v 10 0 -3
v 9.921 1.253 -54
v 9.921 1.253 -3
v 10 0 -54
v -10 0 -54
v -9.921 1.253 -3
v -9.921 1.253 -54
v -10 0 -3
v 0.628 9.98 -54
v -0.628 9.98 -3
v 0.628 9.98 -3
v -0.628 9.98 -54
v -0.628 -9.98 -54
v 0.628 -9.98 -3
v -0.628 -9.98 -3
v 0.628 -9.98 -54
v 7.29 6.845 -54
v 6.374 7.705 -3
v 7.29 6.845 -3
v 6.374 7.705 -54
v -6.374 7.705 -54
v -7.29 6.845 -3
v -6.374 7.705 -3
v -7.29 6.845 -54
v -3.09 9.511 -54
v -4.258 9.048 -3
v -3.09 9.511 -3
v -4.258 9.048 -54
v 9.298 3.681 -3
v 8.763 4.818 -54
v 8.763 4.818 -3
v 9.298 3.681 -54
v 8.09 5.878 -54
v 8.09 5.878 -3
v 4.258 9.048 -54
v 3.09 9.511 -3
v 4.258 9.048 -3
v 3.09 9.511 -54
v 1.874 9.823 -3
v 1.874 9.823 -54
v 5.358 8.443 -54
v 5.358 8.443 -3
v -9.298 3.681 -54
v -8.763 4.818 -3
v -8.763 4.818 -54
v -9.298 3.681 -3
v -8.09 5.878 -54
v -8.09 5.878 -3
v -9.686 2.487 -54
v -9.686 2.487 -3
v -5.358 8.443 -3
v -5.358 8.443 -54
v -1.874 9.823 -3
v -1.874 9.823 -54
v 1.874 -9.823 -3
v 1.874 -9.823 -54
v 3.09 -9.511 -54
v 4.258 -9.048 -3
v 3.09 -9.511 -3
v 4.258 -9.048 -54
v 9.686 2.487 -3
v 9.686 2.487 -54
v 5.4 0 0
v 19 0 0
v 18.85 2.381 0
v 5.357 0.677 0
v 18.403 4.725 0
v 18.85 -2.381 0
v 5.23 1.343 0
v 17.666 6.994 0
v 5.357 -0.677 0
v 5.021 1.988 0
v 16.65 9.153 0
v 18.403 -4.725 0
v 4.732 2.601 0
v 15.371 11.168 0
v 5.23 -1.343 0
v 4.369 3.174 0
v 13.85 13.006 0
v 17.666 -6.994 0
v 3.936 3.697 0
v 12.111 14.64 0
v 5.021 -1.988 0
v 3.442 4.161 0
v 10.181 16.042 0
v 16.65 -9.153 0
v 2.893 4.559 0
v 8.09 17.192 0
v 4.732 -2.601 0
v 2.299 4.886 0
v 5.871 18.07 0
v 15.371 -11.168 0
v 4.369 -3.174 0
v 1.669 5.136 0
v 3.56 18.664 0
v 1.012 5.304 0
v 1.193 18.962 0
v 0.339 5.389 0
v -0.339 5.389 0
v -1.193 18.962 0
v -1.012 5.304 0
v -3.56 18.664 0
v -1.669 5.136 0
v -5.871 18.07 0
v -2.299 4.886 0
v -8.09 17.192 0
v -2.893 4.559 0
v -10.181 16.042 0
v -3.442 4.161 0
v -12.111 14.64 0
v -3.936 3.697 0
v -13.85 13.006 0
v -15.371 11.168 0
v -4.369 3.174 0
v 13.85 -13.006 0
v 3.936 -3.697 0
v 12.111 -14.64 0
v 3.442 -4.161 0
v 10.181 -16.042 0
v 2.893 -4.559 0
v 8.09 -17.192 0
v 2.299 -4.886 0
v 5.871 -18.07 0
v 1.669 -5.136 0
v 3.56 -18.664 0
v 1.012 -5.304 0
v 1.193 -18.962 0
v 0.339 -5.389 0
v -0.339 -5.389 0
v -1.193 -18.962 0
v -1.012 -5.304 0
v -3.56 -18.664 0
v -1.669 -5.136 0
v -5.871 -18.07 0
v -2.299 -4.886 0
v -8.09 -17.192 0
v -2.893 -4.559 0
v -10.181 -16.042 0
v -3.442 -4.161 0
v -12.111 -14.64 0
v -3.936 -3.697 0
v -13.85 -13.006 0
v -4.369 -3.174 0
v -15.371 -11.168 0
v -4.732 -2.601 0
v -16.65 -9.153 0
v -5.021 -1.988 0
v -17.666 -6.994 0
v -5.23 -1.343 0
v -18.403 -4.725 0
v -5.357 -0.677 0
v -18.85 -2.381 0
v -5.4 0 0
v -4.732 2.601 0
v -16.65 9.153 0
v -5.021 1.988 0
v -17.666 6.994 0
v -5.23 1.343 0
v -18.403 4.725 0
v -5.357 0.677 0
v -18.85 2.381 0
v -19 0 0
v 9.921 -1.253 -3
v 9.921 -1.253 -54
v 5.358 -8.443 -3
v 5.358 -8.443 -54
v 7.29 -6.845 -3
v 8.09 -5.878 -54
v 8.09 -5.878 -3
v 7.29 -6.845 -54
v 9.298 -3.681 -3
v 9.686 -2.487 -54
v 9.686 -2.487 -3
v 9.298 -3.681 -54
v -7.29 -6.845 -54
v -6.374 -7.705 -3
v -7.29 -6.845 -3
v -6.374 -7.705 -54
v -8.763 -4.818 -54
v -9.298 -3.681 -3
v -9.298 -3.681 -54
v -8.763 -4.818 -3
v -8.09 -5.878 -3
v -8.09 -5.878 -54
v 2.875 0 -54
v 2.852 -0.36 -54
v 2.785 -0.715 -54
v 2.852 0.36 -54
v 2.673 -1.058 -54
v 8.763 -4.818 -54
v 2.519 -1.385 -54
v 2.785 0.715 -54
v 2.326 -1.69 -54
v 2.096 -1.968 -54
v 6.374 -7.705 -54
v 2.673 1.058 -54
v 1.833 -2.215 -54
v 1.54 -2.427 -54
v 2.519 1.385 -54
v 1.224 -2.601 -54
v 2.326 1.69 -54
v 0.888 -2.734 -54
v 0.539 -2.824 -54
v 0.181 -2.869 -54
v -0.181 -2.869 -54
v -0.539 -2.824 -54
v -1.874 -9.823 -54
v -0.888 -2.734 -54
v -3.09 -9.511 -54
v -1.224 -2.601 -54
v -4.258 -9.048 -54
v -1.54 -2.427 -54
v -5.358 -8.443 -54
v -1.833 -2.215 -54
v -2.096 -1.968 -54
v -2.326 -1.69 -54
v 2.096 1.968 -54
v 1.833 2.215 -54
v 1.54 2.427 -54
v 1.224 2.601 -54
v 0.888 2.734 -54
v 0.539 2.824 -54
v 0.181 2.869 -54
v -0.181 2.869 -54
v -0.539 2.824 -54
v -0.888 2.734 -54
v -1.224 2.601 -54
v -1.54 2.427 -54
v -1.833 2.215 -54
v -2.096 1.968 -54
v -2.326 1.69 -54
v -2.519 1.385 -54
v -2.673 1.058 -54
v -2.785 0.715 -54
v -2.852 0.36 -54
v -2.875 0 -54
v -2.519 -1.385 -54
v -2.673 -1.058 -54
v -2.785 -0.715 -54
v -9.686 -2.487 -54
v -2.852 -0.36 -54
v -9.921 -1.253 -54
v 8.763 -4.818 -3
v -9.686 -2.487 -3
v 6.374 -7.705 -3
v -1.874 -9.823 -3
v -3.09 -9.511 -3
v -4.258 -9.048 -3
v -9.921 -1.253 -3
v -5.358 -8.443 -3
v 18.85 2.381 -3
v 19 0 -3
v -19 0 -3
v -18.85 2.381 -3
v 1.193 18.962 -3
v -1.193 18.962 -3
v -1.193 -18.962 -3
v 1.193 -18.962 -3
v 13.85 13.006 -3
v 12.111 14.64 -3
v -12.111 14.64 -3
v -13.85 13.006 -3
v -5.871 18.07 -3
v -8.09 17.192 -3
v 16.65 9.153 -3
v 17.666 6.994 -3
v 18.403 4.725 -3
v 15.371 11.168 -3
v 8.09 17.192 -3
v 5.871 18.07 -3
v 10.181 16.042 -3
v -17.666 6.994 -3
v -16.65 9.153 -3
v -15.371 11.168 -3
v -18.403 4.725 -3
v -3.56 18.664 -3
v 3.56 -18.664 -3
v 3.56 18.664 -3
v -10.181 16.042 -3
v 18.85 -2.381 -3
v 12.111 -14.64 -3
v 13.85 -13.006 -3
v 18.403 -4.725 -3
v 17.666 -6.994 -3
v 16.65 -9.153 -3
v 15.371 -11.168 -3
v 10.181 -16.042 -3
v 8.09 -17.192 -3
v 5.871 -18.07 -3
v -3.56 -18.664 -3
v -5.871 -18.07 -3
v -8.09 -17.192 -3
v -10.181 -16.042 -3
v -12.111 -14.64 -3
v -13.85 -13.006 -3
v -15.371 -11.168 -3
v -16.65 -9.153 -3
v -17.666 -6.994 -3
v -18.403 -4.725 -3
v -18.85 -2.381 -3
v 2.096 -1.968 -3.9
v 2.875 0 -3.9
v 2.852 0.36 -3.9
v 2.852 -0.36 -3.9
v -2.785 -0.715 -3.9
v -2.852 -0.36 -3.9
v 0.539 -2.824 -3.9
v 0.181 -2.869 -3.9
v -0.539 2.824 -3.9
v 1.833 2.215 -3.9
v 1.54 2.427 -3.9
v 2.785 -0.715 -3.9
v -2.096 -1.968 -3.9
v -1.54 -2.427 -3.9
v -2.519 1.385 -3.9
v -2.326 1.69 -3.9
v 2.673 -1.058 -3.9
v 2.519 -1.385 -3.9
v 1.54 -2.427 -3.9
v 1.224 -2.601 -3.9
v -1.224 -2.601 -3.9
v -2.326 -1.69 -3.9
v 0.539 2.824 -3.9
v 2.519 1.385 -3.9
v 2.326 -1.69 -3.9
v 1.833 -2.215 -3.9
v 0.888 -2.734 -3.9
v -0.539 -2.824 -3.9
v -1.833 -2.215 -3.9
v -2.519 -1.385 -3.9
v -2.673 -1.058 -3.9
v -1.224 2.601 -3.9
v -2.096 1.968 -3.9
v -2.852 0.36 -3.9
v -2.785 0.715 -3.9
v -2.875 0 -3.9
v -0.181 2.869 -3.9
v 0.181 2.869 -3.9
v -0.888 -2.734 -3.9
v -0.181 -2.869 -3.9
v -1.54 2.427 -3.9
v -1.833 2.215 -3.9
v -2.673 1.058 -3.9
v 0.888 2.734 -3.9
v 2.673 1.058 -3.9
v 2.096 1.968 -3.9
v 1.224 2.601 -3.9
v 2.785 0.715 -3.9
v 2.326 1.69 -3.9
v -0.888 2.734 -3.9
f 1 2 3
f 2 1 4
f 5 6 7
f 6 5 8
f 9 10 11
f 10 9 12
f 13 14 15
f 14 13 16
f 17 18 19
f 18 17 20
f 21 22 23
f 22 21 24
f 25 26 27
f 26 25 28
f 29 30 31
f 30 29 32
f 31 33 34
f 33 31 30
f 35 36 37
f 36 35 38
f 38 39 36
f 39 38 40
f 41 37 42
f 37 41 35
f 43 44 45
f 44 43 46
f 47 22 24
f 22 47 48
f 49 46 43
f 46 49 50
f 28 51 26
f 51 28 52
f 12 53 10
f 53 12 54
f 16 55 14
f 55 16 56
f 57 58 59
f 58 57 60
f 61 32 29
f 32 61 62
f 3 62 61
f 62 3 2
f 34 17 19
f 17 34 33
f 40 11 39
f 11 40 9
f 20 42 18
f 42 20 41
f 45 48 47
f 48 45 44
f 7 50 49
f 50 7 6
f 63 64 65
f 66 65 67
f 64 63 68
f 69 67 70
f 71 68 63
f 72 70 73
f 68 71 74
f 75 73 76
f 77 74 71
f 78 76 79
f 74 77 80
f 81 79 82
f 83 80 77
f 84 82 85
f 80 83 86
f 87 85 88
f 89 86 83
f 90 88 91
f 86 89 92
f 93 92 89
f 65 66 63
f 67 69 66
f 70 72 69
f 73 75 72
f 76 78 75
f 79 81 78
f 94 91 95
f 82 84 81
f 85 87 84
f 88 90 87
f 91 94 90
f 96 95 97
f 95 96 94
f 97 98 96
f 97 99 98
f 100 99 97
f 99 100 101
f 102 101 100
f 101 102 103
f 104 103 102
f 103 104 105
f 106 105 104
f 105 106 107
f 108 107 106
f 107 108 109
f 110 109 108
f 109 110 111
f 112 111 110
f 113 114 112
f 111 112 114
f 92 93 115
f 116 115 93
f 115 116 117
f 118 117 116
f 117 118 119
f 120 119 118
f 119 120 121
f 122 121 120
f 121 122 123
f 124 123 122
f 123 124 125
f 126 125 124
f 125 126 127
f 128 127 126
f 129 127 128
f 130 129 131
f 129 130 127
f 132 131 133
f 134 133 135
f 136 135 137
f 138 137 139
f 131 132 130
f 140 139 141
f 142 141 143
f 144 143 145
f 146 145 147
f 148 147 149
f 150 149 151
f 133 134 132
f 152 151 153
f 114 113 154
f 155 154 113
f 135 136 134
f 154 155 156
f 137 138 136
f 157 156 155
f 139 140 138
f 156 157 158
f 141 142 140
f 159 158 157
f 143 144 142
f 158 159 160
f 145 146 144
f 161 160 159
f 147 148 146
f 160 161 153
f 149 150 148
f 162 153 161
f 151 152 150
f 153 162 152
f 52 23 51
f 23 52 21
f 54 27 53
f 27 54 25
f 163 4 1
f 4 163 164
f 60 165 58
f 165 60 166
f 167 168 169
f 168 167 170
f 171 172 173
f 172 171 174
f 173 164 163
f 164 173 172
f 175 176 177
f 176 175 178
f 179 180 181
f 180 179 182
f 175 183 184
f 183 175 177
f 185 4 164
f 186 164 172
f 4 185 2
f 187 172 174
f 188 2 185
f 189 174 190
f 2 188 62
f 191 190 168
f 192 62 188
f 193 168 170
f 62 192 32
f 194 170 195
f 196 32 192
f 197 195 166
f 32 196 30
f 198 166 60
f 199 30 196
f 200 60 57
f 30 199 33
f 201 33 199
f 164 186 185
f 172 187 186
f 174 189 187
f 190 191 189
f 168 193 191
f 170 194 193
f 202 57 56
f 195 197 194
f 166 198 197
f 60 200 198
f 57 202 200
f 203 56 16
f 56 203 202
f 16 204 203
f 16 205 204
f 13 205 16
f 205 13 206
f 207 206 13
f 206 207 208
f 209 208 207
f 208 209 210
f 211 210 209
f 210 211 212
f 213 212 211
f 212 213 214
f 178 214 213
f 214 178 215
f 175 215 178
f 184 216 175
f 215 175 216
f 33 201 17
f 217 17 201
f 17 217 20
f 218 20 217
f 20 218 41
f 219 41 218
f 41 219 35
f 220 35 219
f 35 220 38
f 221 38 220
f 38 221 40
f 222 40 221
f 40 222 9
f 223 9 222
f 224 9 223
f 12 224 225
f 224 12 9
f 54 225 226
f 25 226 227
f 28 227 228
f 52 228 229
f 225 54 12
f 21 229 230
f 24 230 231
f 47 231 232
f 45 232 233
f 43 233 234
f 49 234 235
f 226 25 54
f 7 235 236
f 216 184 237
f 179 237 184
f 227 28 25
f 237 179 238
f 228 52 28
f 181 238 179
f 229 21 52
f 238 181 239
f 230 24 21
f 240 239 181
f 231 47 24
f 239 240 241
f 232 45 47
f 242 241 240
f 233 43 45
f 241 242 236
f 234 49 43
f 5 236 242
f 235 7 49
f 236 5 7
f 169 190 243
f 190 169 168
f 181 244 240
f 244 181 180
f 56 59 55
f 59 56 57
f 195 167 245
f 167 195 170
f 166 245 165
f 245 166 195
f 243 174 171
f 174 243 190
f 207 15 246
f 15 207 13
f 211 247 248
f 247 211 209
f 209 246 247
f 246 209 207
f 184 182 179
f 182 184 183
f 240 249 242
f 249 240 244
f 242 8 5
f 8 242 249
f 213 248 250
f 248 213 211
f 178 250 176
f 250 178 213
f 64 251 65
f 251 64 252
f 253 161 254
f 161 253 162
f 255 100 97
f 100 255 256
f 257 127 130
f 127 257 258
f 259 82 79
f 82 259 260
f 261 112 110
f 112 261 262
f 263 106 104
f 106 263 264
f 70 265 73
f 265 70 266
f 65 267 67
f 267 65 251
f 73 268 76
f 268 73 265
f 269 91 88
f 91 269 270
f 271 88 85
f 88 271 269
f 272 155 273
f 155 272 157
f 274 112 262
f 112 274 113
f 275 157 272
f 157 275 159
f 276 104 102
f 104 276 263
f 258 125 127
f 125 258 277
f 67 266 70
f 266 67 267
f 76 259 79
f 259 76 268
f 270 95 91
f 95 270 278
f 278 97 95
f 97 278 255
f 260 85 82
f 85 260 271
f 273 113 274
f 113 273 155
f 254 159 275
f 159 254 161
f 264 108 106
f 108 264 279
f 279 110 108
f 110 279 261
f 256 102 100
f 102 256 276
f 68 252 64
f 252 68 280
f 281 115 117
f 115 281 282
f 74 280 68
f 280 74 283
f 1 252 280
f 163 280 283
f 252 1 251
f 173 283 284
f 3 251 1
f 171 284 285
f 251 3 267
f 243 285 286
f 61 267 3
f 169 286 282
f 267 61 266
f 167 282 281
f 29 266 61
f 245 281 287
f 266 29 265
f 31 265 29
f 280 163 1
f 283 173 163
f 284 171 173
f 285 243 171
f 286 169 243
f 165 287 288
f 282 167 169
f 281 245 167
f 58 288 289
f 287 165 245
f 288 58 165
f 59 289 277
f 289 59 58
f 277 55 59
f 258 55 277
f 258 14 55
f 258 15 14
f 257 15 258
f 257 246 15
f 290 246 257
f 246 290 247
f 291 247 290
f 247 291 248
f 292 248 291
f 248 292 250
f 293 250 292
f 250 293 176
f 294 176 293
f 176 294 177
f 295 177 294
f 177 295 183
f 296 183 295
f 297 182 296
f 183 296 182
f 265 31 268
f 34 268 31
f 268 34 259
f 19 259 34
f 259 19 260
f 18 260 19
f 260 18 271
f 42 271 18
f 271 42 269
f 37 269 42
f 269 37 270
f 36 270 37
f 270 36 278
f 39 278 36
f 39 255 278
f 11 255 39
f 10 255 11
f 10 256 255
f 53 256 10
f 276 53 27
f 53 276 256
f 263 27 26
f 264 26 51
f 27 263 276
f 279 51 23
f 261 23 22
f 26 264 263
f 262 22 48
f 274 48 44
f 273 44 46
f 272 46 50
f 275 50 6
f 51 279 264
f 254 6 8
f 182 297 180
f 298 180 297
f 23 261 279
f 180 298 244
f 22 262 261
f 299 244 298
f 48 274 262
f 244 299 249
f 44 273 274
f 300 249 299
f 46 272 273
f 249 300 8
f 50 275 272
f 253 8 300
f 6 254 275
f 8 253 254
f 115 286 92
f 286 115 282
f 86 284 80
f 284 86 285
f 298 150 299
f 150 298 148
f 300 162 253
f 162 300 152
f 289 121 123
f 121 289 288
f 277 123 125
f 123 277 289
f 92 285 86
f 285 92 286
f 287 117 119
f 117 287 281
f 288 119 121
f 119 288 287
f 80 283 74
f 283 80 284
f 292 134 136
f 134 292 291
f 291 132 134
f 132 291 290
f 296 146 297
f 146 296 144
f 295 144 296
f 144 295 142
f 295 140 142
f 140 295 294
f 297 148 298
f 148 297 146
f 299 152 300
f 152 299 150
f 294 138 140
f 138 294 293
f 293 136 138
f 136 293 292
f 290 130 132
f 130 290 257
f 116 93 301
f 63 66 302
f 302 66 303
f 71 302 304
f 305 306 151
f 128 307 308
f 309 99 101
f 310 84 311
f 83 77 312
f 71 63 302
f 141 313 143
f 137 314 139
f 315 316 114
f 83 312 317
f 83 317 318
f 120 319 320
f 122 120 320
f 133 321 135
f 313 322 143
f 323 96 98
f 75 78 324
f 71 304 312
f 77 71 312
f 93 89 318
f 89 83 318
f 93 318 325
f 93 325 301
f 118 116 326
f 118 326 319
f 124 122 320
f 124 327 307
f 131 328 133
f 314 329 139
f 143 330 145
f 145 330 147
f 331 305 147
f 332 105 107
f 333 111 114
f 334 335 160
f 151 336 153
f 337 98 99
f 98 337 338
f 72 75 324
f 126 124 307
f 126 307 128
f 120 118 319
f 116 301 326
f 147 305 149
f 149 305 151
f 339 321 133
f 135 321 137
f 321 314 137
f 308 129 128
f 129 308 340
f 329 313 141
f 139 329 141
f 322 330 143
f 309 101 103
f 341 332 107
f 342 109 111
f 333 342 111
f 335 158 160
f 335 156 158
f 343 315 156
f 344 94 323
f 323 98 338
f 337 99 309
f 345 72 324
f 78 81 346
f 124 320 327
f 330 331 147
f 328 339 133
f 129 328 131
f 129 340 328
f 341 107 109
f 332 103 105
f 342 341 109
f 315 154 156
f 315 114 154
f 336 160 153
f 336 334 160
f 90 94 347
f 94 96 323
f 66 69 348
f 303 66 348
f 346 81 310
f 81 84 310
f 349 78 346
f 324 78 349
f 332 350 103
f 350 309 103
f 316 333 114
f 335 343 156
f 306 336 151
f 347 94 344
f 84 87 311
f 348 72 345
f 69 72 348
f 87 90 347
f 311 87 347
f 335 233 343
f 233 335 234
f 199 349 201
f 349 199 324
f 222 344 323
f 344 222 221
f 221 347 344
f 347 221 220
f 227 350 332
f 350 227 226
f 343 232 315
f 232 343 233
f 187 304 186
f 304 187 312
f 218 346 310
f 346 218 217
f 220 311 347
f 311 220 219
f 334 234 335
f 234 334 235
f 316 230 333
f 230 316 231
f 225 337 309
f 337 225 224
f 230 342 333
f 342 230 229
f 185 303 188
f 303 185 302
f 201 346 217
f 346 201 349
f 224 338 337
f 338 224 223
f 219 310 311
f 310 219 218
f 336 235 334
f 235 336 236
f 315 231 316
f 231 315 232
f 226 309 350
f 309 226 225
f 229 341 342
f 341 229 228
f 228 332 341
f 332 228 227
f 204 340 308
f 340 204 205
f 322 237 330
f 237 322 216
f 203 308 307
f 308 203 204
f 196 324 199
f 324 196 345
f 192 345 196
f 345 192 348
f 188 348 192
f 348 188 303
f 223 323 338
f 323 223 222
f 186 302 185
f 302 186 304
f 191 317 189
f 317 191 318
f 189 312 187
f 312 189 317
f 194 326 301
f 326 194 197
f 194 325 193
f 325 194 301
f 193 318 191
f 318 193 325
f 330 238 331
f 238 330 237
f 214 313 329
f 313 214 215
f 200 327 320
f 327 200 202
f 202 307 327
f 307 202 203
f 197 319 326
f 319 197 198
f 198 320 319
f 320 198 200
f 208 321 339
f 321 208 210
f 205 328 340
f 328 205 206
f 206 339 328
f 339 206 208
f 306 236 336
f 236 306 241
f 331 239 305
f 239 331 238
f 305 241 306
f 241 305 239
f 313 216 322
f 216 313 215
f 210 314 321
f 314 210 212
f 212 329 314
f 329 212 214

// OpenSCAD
$fn = 50;


difference() {
	union() {
		translate(v = [0, 0, -54.0000000000]) {
			cylinder(h = 54, r = 10.0000000000);
		}
		translate(v = [0, 0, -3.0000000000]) {
			cylinder(h = 3, r = 19.0000000000);
		}
	}
	union() {
		translate(v = [0, 0, 0]) {
			rotate(a = [0, 0, 0]) {
				difference() {
					union() {
						#translate(v = [0, 0, -54.0000000000]) {
							cylinder(h = 54, r = 2.6000000000);
						}
						#translate(v = [0, 0, -3.9000000000]) {
							cylinder(h = 3.9000000000, r = 10.0000000000, r1 = 2.8750000000, r2 = 5.4000000000);
						}
						#translate(v = [0, 0, -54.0000000000]) {
							cylinder(h = 54, r = 2.8750000000);
						}
						#translate(v = [0, 0, -54.0000000000]) {
							cylinder(h = 54, r = 2.6000000000);
						}
					}
					union();
				}
			}
		}
	}
}
